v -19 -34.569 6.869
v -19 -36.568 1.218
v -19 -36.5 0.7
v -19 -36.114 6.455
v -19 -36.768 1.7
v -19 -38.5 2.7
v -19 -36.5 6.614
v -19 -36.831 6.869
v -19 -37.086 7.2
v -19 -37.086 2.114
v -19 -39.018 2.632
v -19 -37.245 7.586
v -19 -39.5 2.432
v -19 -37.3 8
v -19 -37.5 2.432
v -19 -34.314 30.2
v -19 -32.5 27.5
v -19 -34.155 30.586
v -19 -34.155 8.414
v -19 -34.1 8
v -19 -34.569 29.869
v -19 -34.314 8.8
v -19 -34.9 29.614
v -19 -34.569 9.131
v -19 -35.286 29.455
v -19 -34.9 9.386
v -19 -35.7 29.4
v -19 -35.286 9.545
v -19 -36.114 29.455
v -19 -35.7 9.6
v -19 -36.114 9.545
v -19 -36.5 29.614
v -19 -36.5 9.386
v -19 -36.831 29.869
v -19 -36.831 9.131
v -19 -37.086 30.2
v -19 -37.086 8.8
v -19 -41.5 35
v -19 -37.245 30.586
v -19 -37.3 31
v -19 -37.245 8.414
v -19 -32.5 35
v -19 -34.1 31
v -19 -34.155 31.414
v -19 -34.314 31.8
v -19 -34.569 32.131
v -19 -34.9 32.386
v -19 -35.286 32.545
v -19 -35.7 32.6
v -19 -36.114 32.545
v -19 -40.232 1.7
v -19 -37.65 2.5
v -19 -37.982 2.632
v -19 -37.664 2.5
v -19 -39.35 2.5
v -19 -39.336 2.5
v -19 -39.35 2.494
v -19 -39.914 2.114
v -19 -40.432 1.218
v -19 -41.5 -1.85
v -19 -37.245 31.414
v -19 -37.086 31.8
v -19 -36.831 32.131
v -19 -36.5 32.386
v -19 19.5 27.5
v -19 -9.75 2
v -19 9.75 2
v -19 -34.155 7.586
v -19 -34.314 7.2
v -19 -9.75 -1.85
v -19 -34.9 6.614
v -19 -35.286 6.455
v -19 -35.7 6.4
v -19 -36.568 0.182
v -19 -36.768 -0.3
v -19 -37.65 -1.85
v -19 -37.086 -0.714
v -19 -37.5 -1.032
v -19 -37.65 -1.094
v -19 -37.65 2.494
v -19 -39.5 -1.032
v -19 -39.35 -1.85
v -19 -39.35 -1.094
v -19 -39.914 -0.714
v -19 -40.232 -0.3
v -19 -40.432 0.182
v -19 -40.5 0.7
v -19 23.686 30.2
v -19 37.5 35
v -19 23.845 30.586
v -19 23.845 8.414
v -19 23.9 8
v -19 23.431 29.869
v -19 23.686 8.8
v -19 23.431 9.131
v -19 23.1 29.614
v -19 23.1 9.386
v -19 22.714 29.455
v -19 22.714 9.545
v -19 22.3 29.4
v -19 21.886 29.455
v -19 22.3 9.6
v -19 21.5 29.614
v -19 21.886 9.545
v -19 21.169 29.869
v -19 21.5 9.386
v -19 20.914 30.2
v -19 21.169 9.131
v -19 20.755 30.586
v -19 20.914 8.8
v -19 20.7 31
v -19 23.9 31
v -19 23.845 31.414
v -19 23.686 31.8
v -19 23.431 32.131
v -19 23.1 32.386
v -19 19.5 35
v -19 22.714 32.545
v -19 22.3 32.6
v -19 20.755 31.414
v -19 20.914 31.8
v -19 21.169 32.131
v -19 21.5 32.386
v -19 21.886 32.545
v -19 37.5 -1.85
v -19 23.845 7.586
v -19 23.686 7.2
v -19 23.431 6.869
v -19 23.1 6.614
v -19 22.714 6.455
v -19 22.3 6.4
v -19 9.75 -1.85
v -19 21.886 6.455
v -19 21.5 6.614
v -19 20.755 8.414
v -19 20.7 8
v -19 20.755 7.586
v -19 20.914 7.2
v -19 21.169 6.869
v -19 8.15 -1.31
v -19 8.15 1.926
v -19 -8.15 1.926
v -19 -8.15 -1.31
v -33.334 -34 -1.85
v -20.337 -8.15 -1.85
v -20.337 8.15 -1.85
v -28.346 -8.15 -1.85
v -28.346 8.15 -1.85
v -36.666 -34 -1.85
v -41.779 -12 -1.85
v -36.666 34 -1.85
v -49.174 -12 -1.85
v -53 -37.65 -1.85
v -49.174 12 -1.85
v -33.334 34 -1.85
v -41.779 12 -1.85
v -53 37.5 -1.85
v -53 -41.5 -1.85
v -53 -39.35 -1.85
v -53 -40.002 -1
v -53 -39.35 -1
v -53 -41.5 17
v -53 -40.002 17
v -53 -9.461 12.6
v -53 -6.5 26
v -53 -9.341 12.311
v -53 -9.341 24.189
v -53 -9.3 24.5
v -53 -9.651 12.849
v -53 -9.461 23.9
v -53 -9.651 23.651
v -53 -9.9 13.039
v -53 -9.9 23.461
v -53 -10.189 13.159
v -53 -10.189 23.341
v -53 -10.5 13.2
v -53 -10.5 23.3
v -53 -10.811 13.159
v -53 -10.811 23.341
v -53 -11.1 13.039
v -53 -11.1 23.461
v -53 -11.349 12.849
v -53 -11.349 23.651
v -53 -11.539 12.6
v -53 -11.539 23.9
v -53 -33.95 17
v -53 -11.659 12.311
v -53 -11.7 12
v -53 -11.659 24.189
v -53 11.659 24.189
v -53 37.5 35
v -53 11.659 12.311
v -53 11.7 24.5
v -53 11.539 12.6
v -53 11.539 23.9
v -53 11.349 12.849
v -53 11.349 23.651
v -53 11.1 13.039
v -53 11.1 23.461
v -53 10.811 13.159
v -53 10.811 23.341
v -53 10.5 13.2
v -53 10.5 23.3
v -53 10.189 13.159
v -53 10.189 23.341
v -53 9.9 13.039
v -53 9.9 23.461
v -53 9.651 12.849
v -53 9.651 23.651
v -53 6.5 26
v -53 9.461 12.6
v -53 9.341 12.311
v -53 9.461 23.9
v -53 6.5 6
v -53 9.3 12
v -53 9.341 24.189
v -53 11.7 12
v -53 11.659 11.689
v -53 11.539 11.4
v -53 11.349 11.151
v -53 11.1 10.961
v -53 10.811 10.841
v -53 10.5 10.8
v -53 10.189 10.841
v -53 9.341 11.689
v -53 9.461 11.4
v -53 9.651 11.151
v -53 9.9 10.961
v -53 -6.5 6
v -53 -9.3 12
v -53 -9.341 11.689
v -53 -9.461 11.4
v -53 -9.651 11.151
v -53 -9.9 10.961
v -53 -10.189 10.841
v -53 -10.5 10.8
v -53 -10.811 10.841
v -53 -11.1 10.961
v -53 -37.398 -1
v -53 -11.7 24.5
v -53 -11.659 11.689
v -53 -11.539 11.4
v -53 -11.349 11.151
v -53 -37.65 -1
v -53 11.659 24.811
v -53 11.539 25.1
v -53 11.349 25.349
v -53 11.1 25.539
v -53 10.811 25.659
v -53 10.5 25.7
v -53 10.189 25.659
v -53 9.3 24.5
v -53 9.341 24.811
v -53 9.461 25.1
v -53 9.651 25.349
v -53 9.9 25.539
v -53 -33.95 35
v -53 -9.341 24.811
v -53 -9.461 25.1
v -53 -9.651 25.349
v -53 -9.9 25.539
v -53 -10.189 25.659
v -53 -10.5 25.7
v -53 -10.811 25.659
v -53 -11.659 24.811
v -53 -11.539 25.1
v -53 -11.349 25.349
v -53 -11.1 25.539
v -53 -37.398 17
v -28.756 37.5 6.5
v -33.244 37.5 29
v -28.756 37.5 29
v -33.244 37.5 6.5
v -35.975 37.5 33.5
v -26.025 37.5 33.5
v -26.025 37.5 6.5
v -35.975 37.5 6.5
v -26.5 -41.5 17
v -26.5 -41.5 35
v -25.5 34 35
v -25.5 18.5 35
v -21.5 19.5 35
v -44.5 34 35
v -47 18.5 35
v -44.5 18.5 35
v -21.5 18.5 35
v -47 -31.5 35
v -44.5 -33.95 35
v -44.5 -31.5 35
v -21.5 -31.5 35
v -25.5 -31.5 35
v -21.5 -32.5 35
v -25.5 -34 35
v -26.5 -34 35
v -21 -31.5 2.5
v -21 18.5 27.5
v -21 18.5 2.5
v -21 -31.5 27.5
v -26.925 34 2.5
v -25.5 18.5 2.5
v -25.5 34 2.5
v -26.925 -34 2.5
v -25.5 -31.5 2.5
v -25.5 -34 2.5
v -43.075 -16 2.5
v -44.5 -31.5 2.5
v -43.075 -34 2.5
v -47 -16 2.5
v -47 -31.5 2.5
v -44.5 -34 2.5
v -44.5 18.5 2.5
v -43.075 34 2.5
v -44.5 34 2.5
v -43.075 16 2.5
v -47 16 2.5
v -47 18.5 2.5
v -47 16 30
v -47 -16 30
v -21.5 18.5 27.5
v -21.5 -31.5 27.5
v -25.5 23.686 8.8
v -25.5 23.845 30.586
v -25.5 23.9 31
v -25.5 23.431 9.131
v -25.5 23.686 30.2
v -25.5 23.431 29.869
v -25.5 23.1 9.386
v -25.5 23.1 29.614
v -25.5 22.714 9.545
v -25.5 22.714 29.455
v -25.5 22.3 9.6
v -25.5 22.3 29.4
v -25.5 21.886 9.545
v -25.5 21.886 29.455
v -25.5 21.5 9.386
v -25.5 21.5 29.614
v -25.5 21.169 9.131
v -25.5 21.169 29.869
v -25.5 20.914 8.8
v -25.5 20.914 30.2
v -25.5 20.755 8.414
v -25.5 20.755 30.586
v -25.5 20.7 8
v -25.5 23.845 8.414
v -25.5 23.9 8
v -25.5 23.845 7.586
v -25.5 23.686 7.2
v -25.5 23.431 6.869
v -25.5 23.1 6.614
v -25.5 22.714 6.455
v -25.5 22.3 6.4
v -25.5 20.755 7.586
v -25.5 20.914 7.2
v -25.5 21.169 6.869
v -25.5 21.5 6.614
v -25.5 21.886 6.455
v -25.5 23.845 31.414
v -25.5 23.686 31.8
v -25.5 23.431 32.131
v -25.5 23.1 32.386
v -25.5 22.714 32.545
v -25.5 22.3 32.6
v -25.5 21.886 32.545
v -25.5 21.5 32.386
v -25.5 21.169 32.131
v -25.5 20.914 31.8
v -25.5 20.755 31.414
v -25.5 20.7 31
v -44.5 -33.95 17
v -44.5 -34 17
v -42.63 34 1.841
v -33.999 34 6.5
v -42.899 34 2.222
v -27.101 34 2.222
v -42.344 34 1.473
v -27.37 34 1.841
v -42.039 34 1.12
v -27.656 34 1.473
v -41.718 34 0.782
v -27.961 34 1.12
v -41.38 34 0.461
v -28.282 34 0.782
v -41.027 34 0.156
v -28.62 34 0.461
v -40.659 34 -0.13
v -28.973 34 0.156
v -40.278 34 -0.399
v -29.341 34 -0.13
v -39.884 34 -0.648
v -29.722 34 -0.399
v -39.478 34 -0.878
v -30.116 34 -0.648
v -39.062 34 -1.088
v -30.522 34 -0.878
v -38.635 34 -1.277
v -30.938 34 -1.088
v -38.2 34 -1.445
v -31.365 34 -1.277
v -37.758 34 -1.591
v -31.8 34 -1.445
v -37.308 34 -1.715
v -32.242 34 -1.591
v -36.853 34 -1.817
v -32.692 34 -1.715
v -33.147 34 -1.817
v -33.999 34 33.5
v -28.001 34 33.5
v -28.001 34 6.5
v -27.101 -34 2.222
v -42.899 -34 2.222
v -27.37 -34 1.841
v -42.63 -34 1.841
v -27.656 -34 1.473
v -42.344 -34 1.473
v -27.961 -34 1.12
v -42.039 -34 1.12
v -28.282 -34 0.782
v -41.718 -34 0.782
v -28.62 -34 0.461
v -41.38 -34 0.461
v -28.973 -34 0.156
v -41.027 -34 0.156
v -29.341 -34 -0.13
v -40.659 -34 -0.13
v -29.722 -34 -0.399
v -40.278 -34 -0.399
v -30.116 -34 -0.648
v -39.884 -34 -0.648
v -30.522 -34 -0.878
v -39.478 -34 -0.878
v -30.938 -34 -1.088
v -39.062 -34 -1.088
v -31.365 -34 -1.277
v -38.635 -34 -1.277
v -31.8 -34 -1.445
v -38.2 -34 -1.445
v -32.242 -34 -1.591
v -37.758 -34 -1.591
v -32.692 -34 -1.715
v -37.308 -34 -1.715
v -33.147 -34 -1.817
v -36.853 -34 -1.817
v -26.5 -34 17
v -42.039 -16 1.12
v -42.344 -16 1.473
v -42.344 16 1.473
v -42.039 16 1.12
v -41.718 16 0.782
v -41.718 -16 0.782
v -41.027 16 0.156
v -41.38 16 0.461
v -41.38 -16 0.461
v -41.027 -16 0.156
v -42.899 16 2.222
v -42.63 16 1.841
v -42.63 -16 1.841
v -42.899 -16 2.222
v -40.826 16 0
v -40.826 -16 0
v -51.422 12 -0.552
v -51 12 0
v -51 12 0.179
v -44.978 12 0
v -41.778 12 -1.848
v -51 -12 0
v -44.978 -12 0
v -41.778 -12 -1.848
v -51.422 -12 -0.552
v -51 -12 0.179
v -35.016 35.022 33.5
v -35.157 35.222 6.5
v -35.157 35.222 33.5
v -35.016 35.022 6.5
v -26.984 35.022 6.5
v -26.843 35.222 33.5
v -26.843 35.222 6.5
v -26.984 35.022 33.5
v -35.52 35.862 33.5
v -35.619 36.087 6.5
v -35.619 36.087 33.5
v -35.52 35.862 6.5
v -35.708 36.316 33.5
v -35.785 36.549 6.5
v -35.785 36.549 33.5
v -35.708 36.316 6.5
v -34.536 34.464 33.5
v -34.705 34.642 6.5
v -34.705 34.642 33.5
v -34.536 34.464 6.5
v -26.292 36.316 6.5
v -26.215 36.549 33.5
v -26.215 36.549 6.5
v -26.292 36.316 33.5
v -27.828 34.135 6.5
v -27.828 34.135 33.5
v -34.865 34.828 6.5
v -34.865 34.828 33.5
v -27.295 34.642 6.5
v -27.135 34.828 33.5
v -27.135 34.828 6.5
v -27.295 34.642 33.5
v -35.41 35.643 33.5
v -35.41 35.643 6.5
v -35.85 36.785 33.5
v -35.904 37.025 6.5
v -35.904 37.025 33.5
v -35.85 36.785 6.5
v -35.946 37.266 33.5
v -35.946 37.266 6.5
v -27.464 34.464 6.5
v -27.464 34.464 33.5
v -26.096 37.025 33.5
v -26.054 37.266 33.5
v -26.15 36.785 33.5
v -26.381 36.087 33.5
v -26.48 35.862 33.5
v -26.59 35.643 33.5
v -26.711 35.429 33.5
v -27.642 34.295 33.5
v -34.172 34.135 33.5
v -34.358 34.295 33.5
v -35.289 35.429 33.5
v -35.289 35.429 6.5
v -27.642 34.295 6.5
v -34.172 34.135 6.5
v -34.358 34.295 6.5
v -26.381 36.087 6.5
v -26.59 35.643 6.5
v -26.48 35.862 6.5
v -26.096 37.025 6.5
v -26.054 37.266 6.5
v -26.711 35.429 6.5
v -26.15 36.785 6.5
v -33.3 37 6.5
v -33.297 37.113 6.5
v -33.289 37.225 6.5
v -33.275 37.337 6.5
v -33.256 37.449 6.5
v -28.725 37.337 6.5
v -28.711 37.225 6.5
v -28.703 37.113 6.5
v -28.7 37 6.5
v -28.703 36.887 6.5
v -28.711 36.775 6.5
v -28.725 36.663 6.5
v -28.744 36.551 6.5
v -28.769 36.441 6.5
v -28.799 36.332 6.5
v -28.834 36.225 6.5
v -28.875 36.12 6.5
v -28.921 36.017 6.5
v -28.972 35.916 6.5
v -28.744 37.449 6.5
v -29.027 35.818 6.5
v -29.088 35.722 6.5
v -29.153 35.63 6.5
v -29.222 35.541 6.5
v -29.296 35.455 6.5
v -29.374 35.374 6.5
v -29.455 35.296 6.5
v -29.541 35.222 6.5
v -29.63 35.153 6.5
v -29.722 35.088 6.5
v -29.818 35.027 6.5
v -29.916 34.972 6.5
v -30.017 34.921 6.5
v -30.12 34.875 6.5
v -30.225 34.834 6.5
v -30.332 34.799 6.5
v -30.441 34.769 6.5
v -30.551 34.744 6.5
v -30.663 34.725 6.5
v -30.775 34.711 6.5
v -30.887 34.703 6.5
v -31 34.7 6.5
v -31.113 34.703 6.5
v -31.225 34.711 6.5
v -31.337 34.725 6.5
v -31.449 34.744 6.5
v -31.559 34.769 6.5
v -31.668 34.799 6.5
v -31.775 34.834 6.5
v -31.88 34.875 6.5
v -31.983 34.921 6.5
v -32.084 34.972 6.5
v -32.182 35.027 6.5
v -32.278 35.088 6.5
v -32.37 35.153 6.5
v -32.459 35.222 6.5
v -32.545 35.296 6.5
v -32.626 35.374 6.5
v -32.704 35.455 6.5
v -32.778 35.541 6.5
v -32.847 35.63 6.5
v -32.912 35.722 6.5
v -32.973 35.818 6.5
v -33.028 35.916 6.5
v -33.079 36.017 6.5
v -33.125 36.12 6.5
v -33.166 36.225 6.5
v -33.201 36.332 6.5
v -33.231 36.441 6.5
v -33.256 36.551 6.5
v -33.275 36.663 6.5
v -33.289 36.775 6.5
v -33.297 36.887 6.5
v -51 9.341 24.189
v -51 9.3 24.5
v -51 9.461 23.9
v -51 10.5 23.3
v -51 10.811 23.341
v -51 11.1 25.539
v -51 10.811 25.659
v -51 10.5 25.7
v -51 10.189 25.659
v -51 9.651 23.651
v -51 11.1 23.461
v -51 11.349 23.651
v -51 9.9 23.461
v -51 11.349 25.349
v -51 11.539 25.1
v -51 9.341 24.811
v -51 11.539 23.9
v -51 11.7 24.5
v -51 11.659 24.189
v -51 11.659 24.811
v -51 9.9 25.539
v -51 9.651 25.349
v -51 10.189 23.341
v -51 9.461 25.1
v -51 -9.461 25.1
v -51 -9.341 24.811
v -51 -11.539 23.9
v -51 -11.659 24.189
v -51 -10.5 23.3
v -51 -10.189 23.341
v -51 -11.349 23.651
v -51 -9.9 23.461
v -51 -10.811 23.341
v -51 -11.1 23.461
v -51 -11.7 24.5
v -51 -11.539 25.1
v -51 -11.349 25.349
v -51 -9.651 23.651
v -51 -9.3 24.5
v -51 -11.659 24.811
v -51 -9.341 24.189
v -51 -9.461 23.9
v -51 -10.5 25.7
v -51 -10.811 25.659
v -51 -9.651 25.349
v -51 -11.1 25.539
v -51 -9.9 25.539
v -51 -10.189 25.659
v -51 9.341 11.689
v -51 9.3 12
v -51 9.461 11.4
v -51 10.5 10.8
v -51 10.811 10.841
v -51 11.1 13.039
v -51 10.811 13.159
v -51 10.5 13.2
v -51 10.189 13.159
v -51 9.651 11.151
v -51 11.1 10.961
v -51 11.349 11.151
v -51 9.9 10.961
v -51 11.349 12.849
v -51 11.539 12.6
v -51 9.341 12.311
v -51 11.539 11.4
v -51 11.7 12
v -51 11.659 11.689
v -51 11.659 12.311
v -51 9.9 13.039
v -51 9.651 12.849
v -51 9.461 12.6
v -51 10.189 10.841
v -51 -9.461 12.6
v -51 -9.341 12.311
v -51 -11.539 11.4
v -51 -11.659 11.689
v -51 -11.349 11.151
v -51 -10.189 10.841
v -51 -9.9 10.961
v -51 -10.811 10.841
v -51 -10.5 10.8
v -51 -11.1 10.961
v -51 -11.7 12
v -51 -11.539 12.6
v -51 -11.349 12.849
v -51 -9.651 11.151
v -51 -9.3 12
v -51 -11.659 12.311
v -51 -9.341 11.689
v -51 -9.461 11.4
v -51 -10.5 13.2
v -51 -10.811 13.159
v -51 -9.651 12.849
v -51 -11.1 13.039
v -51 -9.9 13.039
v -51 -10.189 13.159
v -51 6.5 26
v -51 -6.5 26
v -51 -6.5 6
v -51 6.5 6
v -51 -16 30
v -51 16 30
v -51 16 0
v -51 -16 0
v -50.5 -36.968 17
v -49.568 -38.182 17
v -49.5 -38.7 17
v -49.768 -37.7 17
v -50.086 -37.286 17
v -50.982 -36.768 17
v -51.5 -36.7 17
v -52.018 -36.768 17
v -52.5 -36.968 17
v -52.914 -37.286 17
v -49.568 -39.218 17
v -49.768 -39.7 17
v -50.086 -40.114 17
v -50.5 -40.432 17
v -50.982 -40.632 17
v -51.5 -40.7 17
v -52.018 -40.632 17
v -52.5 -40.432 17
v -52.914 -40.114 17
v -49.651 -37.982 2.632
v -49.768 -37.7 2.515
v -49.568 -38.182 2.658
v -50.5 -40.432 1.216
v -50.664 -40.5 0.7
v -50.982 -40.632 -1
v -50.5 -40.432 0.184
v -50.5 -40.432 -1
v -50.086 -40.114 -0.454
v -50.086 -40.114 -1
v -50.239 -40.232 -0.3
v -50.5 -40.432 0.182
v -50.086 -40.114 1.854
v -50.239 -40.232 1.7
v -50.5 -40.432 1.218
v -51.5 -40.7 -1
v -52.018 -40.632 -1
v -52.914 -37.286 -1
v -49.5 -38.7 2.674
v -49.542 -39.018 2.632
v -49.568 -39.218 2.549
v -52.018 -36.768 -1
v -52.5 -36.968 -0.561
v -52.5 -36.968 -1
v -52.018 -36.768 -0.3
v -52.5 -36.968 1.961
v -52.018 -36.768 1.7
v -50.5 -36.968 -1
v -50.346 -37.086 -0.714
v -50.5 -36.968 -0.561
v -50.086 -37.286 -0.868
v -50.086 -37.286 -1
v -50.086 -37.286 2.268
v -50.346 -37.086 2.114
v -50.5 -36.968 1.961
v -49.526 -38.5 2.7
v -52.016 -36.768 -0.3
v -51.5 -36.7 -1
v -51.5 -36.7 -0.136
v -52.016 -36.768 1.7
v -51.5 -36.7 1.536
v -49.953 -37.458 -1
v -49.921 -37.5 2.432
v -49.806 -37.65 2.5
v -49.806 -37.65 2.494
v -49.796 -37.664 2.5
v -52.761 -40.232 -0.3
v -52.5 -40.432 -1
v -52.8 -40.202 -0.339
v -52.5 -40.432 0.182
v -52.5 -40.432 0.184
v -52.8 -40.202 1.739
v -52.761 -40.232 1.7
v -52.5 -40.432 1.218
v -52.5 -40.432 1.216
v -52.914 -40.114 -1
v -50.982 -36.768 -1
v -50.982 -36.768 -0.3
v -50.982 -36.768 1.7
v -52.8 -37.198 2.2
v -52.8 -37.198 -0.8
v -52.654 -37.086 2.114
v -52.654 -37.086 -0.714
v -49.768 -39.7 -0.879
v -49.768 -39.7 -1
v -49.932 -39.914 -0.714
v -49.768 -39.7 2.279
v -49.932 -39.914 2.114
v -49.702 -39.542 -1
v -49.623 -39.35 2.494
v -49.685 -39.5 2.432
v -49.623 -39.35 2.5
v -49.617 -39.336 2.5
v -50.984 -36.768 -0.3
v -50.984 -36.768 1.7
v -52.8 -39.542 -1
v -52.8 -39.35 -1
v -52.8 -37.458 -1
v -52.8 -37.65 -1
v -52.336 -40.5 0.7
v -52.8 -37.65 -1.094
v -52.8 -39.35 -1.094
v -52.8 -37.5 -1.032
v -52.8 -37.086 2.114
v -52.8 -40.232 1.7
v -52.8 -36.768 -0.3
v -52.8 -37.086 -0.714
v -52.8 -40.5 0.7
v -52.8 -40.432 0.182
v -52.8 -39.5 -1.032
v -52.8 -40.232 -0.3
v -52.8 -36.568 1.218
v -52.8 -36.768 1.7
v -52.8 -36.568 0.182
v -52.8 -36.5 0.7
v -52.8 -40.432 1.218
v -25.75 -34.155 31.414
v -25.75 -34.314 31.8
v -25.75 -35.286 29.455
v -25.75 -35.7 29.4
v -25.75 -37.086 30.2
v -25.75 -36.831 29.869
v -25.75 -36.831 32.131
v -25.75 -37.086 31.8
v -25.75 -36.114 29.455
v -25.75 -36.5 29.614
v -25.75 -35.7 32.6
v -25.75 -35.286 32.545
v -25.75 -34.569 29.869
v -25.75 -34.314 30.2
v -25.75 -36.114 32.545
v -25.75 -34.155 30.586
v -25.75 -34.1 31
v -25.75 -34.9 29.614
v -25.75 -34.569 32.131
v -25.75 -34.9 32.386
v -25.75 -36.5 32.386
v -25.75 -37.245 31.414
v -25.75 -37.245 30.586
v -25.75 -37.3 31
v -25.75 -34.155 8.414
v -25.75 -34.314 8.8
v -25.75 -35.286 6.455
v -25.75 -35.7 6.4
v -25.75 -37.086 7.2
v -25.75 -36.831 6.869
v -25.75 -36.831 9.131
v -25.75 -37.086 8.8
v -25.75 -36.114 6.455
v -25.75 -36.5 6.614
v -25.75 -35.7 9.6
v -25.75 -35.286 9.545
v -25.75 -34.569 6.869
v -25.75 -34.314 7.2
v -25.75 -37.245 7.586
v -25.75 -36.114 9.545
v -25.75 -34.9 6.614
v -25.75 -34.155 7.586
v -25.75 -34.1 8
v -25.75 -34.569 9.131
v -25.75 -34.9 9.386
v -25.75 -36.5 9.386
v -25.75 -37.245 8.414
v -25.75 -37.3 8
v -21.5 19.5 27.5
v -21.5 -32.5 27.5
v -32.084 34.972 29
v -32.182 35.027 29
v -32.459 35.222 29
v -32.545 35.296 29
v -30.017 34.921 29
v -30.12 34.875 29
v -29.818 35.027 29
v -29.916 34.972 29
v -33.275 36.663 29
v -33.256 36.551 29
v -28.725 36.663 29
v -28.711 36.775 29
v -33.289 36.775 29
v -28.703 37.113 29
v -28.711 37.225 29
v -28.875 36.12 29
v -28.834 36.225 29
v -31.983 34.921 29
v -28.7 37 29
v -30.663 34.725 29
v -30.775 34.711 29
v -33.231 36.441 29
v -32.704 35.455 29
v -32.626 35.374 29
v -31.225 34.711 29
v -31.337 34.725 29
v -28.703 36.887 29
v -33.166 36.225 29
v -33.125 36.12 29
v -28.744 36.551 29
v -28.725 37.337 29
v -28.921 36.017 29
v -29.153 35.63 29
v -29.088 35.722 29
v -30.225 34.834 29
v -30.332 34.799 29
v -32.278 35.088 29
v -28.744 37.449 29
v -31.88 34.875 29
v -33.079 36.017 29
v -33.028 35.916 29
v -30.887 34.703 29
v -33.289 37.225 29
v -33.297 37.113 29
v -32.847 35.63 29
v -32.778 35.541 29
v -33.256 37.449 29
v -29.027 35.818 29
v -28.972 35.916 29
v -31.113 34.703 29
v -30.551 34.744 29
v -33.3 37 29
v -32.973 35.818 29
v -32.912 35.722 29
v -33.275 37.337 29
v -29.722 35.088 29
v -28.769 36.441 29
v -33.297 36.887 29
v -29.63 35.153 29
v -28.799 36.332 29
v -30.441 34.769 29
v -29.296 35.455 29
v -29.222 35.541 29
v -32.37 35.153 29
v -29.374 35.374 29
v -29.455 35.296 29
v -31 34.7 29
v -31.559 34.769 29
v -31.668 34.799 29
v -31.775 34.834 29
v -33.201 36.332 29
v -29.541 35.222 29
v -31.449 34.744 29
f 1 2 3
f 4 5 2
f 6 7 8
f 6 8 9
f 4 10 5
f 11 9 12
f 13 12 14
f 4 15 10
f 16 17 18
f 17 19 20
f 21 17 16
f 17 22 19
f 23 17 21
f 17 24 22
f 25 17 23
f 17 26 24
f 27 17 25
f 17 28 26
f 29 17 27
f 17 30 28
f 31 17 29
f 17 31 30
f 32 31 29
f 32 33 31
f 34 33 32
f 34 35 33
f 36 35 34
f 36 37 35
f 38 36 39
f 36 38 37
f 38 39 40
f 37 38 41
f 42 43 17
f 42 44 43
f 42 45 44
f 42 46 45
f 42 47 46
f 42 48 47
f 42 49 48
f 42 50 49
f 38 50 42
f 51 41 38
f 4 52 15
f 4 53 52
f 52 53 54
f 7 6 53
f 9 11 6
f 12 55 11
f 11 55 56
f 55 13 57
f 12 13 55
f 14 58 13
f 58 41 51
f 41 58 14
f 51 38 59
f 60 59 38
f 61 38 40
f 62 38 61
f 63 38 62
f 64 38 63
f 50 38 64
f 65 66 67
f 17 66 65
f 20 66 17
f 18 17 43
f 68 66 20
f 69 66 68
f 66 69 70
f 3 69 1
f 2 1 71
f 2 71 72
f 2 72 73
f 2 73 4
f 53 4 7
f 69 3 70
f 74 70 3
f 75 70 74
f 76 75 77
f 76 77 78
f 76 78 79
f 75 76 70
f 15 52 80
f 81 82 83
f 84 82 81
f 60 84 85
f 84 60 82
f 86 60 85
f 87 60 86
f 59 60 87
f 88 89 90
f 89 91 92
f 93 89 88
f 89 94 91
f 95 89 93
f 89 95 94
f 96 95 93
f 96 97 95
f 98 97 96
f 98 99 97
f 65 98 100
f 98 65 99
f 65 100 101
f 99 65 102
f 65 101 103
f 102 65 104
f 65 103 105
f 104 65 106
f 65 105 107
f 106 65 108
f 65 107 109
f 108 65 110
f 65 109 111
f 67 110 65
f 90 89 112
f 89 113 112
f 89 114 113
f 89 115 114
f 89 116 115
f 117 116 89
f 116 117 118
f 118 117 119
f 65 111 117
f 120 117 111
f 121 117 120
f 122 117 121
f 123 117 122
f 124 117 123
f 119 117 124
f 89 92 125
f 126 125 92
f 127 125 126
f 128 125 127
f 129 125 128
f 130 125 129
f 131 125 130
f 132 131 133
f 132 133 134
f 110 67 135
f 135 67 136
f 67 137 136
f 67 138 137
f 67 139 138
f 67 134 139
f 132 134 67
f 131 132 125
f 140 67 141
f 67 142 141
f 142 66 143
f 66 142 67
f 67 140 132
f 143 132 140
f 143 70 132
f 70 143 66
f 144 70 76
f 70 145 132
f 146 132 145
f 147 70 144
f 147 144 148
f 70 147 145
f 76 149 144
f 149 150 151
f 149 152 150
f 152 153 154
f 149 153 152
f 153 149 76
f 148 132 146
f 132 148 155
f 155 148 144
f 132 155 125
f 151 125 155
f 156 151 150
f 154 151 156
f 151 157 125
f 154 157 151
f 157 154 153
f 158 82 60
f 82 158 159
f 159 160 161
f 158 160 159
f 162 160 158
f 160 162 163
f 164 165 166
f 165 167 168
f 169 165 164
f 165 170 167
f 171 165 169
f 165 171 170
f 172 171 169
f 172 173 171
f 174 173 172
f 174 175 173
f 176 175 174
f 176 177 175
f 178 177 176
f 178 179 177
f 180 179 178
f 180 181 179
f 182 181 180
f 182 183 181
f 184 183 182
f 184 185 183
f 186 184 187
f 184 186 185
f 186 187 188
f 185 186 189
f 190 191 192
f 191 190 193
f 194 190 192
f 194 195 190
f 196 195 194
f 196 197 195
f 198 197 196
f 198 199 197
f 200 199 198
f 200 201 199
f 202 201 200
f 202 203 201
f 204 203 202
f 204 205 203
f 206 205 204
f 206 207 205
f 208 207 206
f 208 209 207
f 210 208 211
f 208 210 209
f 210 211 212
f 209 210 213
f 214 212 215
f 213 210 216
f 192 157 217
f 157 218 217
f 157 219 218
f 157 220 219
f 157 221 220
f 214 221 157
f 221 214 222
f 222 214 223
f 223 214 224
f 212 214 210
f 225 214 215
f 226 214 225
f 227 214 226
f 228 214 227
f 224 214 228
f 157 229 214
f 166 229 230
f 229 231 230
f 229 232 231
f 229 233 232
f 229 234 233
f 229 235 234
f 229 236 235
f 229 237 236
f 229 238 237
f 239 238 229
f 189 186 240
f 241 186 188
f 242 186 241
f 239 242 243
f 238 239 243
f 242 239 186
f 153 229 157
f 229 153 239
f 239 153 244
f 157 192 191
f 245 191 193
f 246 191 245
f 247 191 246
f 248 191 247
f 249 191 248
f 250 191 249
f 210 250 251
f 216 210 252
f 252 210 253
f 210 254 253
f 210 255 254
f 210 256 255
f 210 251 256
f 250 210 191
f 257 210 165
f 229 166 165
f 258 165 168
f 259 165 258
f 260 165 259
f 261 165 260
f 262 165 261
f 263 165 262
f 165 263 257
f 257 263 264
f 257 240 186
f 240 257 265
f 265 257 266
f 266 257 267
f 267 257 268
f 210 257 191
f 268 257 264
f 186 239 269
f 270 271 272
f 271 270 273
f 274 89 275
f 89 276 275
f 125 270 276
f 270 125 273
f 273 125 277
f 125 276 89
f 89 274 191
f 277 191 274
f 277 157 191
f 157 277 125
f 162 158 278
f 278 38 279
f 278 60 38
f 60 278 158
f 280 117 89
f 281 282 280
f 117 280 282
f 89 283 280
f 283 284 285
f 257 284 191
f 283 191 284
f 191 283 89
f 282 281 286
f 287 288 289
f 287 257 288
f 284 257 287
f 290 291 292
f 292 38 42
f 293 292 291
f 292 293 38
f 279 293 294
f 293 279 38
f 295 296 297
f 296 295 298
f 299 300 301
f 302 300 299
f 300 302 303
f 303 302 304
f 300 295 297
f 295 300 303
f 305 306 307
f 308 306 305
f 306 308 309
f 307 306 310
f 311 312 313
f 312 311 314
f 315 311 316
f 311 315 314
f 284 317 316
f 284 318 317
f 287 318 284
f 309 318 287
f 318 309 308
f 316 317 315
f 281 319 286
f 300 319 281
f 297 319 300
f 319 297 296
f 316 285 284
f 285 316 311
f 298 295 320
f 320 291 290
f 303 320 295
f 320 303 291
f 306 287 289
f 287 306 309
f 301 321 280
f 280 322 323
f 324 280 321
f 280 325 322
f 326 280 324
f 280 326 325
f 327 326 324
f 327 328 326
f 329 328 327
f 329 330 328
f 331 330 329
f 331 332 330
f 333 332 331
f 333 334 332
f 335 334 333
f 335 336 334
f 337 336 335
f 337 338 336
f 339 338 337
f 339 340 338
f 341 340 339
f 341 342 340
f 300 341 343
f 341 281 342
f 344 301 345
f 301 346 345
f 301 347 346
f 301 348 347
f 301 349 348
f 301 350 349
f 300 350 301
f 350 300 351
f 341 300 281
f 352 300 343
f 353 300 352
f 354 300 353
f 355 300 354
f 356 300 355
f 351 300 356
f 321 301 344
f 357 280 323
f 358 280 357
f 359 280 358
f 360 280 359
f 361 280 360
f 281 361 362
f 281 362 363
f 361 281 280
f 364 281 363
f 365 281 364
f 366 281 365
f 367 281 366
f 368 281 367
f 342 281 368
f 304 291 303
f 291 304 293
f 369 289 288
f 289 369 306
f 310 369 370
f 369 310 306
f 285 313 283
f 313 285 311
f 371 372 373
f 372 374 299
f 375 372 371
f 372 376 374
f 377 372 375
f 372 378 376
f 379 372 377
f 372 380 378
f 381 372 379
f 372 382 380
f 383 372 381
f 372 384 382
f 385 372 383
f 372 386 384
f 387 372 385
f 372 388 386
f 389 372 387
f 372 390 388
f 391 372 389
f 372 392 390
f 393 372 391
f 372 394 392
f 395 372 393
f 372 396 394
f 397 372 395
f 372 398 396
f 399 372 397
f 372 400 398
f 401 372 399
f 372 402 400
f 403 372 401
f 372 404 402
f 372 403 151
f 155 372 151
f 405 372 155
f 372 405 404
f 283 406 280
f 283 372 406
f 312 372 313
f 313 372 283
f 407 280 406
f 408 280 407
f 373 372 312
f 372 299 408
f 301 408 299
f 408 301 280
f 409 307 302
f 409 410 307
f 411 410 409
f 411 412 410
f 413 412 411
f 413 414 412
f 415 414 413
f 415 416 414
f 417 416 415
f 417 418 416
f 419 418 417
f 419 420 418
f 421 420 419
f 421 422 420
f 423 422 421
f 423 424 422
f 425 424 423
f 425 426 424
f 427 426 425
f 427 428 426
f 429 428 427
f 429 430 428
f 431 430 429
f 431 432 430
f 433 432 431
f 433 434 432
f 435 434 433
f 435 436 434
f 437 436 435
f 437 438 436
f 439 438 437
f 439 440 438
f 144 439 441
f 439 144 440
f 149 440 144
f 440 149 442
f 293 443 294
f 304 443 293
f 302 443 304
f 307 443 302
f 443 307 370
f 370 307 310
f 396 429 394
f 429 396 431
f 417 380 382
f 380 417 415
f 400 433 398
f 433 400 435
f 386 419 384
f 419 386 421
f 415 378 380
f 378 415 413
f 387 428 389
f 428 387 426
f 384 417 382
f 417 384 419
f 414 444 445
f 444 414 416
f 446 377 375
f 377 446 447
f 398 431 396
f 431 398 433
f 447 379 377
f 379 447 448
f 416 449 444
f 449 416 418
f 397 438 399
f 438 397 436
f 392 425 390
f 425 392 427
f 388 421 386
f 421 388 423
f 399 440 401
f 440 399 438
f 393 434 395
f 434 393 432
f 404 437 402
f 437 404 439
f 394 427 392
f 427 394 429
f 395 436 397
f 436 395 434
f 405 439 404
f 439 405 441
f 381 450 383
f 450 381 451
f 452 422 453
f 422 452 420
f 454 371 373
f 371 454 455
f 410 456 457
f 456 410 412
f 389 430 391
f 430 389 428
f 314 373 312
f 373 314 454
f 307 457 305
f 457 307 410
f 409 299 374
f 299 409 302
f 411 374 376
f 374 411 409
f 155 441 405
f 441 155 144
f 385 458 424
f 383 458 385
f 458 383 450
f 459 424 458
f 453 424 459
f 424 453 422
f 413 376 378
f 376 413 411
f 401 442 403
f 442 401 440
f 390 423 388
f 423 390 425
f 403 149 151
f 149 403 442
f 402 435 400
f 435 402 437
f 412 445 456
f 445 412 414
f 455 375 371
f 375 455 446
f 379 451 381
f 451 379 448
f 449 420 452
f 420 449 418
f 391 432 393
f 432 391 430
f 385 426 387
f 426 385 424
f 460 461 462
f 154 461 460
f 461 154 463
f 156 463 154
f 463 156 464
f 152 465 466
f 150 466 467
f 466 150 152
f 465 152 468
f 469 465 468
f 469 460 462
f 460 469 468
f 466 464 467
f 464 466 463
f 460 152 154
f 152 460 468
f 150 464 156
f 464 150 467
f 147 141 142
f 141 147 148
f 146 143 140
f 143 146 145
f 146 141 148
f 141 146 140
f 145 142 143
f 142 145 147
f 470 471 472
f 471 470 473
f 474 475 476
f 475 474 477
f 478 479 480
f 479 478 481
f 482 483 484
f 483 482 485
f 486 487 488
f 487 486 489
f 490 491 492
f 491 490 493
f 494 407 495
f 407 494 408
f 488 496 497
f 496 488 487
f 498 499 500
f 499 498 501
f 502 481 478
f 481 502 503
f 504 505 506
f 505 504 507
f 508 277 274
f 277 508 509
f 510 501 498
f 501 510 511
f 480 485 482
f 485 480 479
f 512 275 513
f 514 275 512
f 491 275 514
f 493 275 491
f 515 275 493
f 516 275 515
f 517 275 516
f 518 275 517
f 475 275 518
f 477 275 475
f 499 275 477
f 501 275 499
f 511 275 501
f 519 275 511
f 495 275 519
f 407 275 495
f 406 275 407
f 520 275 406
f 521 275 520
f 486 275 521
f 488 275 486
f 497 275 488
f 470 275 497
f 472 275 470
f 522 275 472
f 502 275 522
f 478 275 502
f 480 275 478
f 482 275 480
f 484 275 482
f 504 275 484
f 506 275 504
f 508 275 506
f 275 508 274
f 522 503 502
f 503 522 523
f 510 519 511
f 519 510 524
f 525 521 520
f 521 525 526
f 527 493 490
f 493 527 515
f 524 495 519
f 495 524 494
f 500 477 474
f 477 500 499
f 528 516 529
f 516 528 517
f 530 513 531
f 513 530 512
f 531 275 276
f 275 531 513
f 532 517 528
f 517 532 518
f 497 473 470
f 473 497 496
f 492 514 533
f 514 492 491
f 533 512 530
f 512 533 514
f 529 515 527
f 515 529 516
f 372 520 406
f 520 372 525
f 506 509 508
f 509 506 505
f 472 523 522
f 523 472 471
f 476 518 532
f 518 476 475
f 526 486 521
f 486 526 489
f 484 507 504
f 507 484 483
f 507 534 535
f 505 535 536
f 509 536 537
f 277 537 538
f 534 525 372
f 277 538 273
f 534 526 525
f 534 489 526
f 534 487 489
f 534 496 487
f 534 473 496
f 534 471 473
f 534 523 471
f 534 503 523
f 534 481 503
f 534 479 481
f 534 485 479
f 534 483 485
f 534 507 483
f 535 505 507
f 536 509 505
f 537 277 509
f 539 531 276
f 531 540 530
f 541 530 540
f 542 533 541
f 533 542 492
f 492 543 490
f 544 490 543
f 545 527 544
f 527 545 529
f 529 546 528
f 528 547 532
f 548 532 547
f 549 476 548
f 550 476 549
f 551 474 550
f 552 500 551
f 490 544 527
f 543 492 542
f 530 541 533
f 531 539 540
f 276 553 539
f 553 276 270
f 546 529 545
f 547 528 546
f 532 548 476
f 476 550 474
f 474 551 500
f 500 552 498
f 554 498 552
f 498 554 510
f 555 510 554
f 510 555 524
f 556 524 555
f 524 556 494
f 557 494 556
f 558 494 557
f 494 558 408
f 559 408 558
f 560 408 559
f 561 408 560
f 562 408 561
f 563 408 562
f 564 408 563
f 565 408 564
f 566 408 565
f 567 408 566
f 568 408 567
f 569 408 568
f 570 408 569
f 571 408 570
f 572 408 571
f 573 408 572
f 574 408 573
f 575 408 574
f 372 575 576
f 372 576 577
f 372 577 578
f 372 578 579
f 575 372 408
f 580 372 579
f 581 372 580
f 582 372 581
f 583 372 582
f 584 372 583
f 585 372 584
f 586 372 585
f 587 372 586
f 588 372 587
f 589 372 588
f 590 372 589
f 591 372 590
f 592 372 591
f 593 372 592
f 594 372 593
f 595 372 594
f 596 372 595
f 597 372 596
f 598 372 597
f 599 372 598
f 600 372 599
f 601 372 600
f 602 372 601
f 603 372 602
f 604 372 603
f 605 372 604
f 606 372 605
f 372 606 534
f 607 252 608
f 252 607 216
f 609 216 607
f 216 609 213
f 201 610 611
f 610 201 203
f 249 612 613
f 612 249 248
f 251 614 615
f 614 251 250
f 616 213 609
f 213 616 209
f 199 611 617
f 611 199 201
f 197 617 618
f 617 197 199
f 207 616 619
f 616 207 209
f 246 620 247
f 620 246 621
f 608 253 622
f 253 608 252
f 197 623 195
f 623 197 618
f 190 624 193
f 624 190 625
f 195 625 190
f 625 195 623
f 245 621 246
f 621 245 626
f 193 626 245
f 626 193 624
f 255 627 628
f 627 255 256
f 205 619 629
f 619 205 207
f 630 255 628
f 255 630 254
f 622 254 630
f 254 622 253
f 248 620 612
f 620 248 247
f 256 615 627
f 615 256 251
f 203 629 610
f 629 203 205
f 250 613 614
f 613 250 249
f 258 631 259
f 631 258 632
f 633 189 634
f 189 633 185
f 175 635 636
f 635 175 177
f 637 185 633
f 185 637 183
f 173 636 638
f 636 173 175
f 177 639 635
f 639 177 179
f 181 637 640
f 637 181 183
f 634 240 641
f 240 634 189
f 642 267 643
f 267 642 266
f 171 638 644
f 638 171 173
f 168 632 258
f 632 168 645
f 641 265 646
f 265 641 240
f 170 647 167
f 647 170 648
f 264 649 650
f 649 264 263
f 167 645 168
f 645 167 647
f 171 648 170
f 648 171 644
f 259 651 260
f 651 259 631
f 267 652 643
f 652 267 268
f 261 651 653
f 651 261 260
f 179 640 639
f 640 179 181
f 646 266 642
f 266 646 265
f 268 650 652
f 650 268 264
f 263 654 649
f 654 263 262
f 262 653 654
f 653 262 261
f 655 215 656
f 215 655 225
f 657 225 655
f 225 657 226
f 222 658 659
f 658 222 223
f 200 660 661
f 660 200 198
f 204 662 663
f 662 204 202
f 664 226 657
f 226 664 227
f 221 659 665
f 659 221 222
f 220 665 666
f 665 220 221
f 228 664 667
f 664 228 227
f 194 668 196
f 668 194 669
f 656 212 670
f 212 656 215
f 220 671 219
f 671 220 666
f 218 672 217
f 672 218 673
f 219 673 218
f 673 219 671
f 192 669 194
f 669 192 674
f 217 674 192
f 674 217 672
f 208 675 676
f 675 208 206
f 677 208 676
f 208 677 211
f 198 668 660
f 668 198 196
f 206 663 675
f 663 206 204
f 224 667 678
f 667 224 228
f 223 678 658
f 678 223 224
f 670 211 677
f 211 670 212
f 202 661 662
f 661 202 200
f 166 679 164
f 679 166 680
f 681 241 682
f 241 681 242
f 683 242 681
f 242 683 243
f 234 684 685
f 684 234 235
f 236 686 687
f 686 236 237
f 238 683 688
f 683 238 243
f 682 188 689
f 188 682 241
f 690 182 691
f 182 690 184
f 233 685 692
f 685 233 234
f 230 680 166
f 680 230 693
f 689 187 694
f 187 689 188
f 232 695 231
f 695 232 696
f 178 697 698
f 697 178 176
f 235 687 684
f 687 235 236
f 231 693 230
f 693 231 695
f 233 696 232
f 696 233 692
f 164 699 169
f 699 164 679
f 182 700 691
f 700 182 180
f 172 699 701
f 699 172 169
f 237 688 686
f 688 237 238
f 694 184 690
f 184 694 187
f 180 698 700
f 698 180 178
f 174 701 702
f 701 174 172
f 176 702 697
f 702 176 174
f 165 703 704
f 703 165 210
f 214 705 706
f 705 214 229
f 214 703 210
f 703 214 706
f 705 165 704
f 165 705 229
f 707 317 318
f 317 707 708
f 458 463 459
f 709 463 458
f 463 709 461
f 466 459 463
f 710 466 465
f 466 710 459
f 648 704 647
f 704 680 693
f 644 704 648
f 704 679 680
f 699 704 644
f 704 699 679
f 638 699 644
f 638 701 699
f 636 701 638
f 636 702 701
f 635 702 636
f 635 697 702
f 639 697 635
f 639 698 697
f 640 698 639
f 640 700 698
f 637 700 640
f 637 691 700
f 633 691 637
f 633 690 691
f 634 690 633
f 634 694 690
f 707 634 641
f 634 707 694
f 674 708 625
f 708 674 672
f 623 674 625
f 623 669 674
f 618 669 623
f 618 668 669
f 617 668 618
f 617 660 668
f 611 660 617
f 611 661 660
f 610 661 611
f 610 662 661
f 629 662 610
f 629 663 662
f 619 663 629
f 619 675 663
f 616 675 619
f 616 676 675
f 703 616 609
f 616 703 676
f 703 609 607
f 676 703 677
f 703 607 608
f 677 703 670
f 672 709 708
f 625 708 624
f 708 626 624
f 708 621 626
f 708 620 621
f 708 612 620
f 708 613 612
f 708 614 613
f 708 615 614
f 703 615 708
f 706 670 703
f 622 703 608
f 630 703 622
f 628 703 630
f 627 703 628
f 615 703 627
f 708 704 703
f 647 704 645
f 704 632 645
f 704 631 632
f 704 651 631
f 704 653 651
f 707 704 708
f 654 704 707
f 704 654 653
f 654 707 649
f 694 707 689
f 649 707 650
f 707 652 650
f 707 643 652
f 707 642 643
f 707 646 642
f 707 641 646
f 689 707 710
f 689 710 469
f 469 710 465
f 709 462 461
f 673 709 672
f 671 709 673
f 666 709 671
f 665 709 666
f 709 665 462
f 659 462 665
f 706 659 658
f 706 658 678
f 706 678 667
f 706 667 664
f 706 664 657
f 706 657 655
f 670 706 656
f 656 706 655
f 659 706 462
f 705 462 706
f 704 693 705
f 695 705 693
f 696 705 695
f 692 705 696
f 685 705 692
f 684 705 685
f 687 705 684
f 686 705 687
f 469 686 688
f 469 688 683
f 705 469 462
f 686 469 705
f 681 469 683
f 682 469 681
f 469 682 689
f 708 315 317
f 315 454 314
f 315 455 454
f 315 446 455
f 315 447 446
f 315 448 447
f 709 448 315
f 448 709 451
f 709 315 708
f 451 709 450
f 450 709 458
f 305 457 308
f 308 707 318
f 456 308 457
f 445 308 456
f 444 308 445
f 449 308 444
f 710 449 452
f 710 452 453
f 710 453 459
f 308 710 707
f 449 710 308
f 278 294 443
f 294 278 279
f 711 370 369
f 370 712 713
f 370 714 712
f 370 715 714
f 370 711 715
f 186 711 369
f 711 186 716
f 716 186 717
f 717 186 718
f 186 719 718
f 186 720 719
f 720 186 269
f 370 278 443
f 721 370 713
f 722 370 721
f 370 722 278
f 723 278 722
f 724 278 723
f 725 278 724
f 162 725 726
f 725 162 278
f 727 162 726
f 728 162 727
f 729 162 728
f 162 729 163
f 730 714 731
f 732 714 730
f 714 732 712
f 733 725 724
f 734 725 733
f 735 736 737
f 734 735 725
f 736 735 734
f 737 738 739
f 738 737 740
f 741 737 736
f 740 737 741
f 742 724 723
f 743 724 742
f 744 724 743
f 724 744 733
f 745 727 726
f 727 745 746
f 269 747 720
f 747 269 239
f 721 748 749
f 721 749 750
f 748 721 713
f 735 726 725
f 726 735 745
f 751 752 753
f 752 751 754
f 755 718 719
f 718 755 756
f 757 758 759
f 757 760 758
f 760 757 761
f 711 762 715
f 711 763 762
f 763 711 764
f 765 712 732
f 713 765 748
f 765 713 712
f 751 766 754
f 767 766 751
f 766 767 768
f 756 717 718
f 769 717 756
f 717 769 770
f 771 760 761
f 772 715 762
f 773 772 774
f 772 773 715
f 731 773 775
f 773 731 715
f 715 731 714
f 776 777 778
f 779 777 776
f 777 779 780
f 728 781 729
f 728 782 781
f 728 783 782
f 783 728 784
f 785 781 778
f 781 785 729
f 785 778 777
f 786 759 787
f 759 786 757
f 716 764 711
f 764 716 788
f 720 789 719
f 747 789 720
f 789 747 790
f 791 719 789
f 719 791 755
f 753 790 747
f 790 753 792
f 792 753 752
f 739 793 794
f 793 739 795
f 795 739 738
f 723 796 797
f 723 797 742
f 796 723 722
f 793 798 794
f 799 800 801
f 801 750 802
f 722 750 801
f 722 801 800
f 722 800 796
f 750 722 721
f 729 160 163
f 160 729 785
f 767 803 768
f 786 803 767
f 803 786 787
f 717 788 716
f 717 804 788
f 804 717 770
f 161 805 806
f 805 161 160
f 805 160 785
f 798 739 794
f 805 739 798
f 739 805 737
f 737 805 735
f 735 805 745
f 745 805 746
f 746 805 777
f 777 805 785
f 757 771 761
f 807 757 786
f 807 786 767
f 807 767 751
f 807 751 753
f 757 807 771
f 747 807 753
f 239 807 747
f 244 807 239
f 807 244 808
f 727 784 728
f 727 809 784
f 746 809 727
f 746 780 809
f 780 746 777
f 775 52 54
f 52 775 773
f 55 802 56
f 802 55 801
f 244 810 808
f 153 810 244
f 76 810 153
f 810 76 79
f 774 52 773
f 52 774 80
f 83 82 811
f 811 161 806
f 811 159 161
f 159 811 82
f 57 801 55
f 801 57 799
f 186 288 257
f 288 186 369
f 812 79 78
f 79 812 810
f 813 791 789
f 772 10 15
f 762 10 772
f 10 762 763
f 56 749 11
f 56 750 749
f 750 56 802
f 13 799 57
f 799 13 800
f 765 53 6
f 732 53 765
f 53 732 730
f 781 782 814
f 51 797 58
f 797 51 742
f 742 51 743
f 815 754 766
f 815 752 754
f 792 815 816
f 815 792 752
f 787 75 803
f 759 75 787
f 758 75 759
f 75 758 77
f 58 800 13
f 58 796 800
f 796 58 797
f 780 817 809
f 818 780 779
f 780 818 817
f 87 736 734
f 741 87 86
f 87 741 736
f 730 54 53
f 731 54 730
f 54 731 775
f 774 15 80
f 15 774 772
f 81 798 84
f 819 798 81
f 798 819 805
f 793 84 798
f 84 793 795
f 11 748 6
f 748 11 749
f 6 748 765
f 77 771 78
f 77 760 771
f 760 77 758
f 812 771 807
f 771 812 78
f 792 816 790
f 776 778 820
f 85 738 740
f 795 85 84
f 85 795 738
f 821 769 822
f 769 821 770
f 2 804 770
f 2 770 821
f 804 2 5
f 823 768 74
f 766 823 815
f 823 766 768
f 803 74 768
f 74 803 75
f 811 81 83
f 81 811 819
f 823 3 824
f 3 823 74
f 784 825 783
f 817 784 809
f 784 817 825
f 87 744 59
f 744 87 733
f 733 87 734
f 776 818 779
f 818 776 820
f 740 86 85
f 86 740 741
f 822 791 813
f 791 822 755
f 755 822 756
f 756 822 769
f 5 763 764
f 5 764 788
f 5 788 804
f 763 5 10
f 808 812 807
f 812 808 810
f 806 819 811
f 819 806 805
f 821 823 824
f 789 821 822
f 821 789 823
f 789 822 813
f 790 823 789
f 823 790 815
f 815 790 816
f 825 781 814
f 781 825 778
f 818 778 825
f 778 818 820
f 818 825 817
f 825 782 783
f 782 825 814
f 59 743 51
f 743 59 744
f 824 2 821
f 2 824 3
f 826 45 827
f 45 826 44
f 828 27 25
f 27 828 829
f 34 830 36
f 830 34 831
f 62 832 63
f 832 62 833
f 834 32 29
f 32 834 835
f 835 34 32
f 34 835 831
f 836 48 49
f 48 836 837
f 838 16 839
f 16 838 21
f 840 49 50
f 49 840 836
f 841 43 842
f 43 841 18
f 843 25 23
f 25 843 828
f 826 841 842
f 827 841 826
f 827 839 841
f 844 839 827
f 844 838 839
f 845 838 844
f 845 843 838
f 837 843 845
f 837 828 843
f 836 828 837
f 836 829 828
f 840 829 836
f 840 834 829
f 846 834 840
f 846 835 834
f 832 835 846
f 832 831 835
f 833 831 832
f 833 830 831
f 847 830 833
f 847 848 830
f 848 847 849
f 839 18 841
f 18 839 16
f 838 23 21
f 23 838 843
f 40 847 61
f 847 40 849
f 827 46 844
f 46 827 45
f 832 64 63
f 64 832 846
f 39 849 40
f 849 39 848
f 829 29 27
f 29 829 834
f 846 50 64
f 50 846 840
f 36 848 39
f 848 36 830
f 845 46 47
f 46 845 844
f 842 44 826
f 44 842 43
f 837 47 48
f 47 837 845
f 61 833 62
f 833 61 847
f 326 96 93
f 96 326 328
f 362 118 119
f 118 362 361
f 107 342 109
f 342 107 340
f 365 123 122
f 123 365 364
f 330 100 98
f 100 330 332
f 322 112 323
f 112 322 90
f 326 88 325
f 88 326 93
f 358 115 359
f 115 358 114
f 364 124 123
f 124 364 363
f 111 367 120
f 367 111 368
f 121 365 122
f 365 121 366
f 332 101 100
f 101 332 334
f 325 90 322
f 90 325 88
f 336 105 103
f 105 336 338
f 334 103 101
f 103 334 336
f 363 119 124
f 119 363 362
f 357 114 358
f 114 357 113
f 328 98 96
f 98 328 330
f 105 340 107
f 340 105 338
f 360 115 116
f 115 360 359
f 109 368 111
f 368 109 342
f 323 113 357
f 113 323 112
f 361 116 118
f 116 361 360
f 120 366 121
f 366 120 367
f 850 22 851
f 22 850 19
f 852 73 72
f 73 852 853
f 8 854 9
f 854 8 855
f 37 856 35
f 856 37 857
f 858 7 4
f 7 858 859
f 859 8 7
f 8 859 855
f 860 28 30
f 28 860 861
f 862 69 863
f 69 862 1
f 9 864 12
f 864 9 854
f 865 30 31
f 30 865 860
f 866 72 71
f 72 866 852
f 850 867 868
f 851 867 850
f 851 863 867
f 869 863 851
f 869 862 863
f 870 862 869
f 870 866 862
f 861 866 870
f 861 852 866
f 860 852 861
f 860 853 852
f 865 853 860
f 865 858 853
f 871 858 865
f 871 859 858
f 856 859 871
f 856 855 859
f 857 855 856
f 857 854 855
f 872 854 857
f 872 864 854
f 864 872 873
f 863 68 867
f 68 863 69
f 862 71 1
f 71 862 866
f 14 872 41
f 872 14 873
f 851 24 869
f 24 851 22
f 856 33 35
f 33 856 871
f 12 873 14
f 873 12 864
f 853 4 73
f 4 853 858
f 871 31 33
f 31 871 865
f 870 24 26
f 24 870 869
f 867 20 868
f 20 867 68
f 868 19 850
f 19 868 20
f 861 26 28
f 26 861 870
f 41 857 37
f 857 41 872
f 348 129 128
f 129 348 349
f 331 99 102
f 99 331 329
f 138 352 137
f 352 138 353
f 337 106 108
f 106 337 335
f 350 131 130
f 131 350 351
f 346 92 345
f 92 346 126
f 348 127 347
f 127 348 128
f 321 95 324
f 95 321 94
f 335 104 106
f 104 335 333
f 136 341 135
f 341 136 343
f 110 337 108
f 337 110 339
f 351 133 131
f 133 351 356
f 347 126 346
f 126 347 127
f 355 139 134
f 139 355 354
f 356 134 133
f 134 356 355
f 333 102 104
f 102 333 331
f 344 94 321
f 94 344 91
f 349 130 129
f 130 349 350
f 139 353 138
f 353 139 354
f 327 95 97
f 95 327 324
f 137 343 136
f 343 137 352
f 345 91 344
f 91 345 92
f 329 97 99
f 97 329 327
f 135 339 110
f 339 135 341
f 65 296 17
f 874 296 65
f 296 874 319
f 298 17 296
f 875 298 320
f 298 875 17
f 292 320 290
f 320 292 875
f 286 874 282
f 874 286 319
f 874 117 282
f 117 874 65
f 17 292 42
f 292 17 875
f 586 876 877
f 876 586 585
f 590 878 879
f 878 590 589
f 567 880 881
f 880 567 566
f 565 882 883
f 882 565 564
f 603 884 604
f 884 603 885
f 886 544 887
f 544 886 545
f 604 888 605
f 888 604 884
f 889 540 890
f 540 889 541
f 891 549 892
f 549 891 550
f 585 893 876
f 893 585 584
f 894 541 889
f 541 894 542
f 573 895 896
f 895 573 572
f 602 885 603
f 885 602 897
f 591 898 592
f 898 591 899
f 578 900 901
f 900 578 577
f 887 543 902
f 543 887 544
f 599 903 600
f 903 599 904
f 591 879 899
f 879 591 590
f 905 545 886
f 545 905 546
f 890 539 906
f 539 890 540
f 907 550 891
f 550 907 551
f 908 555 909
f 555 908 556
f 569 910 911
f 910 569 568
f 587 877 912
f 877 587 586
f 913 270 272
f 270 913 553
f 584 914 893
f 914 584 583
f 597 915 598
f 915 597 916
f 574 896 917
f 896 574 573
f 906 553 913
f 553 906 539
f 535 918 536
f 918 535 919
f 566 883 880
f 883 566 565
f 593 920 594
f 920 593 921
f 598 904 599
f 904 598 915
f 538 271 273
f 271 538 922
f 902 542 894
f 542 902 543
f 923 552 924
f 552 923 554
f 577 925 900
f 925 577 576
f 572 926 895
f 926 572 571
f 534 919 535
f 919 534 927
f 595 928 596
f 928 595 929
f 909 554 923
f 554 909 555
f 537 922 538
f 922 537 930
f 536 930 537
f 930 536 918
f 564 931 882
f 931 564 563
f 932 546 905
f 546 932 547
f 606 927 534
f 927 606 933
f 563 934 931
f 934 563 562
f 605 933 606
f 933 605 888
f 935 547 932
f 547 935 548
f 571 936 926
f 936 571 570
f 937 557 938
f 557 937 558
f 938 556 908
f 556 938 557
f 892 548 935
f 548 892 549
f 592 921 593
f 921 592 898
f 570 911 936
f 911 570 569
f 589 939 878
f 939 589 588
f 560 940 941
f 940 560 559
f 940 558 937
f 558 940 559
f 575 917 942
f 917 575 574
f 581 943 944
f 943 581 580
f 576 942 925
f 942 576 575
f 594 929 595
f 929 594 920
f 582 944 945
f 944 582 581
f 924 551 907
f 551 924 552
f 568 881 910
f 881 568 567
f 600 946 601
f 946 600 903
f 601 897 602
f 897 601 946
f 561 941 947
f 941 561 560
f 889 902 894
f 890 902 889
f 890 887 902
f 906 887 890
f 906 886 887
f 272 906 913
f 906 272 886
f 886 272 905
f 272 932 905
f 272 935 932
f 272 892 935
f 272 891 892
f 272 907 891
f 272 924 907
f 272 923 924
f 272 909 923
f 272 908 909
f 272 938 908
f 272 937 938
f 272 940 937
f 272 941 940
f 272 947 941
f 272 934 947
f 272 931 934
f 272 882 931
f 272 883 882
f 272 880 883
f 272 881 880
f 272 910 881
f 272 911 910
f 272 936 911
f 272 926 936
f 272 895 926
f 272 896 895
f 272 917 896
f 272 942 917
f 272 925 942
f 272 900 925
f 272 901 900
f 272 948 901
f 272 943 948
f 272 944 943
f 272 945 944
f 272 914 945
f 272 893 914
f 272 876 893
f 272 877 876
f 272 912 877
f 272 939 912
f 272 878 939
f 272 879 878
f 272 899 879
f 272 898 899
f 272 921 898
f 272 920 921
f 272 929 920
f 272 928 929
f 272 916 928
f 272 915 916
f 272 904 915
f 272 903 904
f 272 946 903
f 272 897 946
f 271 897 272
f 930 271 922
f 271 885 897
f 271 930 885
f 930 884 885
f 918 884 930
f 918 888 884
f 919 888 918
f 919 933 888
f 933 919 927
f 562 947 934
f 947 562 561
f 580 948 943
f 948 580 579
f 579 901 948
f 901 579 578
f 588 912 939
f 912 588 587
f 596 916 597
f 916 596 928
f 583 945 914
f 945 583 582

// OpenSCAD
union () {
difference(){
union(){
translate([-36,-2,1.7])cube([34,79,7.1], center=true);    
translate([-13,-2,19.5])cube([80,79,31], center=true); 
translate([-23.5,-6.5,19.5])cube([8,69,31], center=true);
}
    //Cube LiPo Battery Core Electronics style
    translate([-34,-6.5,20])cube([26,50,35], center=true);

    //Dual cylinder lipo Adafruit style
    translate([-35,0,21])cube([19,68,37], center=true);
    translate([-35,0,7.5]) rotate([90,0,0])   cylinder(h=68, r1=9.5, r2=9.5, center=true,$fn=128);
     
    //Outside rail mounts
    translate([0,50.8,-3.6])  rotate([0,90,0])   cylinder(h=115, r1=9, r2=9, center=true,$fn=128);
    translate([0,-50.8,-3.6])  rotate([0,90,0])   cylinder(h=115, r1=9, r2=9, center=true,$fn=128);

    //Hole clearance
    //translate([0,29.5,-17])  rotate([0,90,0])   cylinder(h=115, r1=17, r2=17, center=true,$fn=128);
    //translate([0,-29.5,-17])  rotate([0,90,0])   cylinder(h=115, r1=17, r2=17, center=true,$fn=128);
    
    //Cavity for camera cable
    translate([-46.6,0,-1.2]) rotate([0,-60,0]) cube([3.7,24,9], center=true);
    translate([-21,0,-0.5]) rotate([0,-22,0]) cube([30,16.3,3], center=true);

    //Camera cable routing
    translate([-31,38,20])  rotate([0,0,0])   cylinder(27, r1=5, r2=5, center=true,$fn=128);
    
    ///camera holes
    translate([-51,10.5,24.5])rotate([0,90,0])   cylinder(h=5, r1=1.2, r2=1.2, center=true,$fn=24);
    translate([-51,-10.5,24.5])rotate([0,90,0])   cylinder(h=5, r1=1.2, r2=1.2, center=true,$fn=24);
    translate([-51,10.5,12])rotate([0,90,0])   cylinder(h=5, r1=1.2, r2=1.2, center=true,$fn=24);
    translate([-51,-10.5,12])rotate([0,90,0])   cylinder(h=5, r1=1.2, r2=1.2, center=true,$fn=24);

    //camera cutouttest.html
    translate([-52,0,16])cube([8,13,20], center=true);
    
    //Camera installation
    translate([-41,0,15])cube([20,32,30], center=true);
    
    //Holes for battery terminals and solar plug
    translate([30,-30,16])cube([98,40.5,40], center=true);
    translate([30,30,16])cube([98,40.5,40], center=true);
    
     //battery cable routing
    translate([-34,-37,27])  cube([15,10,20], center=true);
    translate([-51.5,-38.7,9]) rotate([0,0,0])  cylinder(h=20, r1=2, r2=2, center=true,$fn=24);
    translate([-36,-38.5,0])  cube([35,1.7,5], center=true);

    translate([-46,-39.5,29])  cube([20,11.1,24], center=true);
   
    translate([-35.3,-38.5,0.7])rotate([0,90,0])   cylinder(h=35, r1=2, r2=2, center=true,$fn=24);

    
    
     //Pi Zero holes  
    translate([-17,-35.7,31])rotate([0,90,0])   cylinder(h=17.5, r1=1.6, r2=1.6, center=true,$fn=24);
    translate([-17,22.3,31])rotate([0,90,0])   cylinder(h=17.5, r1=1.6, r2=1.6, center=true,$fn=24);
    translate([-17,-35.7,8])rotate([0,90,0])   cylinder(h=17.5, r1=1.6, r2=1.6, center=true,$fn=24);
    translate([-17,22.3,8])rotate([0,90,0])   cylinder(h=17.5, r1=1.6, r2=1.6, center=true,$fn=24);
    
    
    //Pi 4 cutout 85.6mm × 56.5mm
    //translate([52,0.8,25])cube([58,87,30], center=true);
    //Pi Zero cut out 65mm x 30mm
    //translate([6,-9,22])cube([42,120,33], center=true);
    
    //Pi PCB cutout
    translate([16,-6.5,20])cube([70,70.5,36], center=true);
    translate([7,-6.5,35])cube([57,52,15], center=true);

    //Ventilation
    
    //#translate([-44,0,20])rotate([90,0,0])   cylinder(h=60, r1=2, r2=2, center=true,$fn=24);
    //translate([-30,0,20])rotate([90,0,0])   cylinder(h=88, r1=2, r2=2, center=true,$fn=24);    
    //translate([-44,-6.5,10])rotate([90,0,0])   cylinder(h=88, r1=2, r2=2, center=true,$fn=24);
    //translate([-30,0,10])rotate([90,0,0])   cylinder(h=88, r1=2, r2=2, center=true,$fn=24);    
    //#translate([-44,0,30])rotate([90,0,0])   cylinder(h=60, r1=2, r2=2, center=true,$fn=24);
    //translate([-30,0,30])rotate([90,0,0])   cylinder(h=88, r1=2, r2=2, center=true,$fn=24);    

}
//Camera cable routing
difference() {
translate([-31,37,14])  rotate([0,0,0])   cylinder(30, r1=2.3, r2=2.3, center=true,$fn=128);
   #translate([-40,40,15])cube([40,5,60], center=true);
        }
    }
